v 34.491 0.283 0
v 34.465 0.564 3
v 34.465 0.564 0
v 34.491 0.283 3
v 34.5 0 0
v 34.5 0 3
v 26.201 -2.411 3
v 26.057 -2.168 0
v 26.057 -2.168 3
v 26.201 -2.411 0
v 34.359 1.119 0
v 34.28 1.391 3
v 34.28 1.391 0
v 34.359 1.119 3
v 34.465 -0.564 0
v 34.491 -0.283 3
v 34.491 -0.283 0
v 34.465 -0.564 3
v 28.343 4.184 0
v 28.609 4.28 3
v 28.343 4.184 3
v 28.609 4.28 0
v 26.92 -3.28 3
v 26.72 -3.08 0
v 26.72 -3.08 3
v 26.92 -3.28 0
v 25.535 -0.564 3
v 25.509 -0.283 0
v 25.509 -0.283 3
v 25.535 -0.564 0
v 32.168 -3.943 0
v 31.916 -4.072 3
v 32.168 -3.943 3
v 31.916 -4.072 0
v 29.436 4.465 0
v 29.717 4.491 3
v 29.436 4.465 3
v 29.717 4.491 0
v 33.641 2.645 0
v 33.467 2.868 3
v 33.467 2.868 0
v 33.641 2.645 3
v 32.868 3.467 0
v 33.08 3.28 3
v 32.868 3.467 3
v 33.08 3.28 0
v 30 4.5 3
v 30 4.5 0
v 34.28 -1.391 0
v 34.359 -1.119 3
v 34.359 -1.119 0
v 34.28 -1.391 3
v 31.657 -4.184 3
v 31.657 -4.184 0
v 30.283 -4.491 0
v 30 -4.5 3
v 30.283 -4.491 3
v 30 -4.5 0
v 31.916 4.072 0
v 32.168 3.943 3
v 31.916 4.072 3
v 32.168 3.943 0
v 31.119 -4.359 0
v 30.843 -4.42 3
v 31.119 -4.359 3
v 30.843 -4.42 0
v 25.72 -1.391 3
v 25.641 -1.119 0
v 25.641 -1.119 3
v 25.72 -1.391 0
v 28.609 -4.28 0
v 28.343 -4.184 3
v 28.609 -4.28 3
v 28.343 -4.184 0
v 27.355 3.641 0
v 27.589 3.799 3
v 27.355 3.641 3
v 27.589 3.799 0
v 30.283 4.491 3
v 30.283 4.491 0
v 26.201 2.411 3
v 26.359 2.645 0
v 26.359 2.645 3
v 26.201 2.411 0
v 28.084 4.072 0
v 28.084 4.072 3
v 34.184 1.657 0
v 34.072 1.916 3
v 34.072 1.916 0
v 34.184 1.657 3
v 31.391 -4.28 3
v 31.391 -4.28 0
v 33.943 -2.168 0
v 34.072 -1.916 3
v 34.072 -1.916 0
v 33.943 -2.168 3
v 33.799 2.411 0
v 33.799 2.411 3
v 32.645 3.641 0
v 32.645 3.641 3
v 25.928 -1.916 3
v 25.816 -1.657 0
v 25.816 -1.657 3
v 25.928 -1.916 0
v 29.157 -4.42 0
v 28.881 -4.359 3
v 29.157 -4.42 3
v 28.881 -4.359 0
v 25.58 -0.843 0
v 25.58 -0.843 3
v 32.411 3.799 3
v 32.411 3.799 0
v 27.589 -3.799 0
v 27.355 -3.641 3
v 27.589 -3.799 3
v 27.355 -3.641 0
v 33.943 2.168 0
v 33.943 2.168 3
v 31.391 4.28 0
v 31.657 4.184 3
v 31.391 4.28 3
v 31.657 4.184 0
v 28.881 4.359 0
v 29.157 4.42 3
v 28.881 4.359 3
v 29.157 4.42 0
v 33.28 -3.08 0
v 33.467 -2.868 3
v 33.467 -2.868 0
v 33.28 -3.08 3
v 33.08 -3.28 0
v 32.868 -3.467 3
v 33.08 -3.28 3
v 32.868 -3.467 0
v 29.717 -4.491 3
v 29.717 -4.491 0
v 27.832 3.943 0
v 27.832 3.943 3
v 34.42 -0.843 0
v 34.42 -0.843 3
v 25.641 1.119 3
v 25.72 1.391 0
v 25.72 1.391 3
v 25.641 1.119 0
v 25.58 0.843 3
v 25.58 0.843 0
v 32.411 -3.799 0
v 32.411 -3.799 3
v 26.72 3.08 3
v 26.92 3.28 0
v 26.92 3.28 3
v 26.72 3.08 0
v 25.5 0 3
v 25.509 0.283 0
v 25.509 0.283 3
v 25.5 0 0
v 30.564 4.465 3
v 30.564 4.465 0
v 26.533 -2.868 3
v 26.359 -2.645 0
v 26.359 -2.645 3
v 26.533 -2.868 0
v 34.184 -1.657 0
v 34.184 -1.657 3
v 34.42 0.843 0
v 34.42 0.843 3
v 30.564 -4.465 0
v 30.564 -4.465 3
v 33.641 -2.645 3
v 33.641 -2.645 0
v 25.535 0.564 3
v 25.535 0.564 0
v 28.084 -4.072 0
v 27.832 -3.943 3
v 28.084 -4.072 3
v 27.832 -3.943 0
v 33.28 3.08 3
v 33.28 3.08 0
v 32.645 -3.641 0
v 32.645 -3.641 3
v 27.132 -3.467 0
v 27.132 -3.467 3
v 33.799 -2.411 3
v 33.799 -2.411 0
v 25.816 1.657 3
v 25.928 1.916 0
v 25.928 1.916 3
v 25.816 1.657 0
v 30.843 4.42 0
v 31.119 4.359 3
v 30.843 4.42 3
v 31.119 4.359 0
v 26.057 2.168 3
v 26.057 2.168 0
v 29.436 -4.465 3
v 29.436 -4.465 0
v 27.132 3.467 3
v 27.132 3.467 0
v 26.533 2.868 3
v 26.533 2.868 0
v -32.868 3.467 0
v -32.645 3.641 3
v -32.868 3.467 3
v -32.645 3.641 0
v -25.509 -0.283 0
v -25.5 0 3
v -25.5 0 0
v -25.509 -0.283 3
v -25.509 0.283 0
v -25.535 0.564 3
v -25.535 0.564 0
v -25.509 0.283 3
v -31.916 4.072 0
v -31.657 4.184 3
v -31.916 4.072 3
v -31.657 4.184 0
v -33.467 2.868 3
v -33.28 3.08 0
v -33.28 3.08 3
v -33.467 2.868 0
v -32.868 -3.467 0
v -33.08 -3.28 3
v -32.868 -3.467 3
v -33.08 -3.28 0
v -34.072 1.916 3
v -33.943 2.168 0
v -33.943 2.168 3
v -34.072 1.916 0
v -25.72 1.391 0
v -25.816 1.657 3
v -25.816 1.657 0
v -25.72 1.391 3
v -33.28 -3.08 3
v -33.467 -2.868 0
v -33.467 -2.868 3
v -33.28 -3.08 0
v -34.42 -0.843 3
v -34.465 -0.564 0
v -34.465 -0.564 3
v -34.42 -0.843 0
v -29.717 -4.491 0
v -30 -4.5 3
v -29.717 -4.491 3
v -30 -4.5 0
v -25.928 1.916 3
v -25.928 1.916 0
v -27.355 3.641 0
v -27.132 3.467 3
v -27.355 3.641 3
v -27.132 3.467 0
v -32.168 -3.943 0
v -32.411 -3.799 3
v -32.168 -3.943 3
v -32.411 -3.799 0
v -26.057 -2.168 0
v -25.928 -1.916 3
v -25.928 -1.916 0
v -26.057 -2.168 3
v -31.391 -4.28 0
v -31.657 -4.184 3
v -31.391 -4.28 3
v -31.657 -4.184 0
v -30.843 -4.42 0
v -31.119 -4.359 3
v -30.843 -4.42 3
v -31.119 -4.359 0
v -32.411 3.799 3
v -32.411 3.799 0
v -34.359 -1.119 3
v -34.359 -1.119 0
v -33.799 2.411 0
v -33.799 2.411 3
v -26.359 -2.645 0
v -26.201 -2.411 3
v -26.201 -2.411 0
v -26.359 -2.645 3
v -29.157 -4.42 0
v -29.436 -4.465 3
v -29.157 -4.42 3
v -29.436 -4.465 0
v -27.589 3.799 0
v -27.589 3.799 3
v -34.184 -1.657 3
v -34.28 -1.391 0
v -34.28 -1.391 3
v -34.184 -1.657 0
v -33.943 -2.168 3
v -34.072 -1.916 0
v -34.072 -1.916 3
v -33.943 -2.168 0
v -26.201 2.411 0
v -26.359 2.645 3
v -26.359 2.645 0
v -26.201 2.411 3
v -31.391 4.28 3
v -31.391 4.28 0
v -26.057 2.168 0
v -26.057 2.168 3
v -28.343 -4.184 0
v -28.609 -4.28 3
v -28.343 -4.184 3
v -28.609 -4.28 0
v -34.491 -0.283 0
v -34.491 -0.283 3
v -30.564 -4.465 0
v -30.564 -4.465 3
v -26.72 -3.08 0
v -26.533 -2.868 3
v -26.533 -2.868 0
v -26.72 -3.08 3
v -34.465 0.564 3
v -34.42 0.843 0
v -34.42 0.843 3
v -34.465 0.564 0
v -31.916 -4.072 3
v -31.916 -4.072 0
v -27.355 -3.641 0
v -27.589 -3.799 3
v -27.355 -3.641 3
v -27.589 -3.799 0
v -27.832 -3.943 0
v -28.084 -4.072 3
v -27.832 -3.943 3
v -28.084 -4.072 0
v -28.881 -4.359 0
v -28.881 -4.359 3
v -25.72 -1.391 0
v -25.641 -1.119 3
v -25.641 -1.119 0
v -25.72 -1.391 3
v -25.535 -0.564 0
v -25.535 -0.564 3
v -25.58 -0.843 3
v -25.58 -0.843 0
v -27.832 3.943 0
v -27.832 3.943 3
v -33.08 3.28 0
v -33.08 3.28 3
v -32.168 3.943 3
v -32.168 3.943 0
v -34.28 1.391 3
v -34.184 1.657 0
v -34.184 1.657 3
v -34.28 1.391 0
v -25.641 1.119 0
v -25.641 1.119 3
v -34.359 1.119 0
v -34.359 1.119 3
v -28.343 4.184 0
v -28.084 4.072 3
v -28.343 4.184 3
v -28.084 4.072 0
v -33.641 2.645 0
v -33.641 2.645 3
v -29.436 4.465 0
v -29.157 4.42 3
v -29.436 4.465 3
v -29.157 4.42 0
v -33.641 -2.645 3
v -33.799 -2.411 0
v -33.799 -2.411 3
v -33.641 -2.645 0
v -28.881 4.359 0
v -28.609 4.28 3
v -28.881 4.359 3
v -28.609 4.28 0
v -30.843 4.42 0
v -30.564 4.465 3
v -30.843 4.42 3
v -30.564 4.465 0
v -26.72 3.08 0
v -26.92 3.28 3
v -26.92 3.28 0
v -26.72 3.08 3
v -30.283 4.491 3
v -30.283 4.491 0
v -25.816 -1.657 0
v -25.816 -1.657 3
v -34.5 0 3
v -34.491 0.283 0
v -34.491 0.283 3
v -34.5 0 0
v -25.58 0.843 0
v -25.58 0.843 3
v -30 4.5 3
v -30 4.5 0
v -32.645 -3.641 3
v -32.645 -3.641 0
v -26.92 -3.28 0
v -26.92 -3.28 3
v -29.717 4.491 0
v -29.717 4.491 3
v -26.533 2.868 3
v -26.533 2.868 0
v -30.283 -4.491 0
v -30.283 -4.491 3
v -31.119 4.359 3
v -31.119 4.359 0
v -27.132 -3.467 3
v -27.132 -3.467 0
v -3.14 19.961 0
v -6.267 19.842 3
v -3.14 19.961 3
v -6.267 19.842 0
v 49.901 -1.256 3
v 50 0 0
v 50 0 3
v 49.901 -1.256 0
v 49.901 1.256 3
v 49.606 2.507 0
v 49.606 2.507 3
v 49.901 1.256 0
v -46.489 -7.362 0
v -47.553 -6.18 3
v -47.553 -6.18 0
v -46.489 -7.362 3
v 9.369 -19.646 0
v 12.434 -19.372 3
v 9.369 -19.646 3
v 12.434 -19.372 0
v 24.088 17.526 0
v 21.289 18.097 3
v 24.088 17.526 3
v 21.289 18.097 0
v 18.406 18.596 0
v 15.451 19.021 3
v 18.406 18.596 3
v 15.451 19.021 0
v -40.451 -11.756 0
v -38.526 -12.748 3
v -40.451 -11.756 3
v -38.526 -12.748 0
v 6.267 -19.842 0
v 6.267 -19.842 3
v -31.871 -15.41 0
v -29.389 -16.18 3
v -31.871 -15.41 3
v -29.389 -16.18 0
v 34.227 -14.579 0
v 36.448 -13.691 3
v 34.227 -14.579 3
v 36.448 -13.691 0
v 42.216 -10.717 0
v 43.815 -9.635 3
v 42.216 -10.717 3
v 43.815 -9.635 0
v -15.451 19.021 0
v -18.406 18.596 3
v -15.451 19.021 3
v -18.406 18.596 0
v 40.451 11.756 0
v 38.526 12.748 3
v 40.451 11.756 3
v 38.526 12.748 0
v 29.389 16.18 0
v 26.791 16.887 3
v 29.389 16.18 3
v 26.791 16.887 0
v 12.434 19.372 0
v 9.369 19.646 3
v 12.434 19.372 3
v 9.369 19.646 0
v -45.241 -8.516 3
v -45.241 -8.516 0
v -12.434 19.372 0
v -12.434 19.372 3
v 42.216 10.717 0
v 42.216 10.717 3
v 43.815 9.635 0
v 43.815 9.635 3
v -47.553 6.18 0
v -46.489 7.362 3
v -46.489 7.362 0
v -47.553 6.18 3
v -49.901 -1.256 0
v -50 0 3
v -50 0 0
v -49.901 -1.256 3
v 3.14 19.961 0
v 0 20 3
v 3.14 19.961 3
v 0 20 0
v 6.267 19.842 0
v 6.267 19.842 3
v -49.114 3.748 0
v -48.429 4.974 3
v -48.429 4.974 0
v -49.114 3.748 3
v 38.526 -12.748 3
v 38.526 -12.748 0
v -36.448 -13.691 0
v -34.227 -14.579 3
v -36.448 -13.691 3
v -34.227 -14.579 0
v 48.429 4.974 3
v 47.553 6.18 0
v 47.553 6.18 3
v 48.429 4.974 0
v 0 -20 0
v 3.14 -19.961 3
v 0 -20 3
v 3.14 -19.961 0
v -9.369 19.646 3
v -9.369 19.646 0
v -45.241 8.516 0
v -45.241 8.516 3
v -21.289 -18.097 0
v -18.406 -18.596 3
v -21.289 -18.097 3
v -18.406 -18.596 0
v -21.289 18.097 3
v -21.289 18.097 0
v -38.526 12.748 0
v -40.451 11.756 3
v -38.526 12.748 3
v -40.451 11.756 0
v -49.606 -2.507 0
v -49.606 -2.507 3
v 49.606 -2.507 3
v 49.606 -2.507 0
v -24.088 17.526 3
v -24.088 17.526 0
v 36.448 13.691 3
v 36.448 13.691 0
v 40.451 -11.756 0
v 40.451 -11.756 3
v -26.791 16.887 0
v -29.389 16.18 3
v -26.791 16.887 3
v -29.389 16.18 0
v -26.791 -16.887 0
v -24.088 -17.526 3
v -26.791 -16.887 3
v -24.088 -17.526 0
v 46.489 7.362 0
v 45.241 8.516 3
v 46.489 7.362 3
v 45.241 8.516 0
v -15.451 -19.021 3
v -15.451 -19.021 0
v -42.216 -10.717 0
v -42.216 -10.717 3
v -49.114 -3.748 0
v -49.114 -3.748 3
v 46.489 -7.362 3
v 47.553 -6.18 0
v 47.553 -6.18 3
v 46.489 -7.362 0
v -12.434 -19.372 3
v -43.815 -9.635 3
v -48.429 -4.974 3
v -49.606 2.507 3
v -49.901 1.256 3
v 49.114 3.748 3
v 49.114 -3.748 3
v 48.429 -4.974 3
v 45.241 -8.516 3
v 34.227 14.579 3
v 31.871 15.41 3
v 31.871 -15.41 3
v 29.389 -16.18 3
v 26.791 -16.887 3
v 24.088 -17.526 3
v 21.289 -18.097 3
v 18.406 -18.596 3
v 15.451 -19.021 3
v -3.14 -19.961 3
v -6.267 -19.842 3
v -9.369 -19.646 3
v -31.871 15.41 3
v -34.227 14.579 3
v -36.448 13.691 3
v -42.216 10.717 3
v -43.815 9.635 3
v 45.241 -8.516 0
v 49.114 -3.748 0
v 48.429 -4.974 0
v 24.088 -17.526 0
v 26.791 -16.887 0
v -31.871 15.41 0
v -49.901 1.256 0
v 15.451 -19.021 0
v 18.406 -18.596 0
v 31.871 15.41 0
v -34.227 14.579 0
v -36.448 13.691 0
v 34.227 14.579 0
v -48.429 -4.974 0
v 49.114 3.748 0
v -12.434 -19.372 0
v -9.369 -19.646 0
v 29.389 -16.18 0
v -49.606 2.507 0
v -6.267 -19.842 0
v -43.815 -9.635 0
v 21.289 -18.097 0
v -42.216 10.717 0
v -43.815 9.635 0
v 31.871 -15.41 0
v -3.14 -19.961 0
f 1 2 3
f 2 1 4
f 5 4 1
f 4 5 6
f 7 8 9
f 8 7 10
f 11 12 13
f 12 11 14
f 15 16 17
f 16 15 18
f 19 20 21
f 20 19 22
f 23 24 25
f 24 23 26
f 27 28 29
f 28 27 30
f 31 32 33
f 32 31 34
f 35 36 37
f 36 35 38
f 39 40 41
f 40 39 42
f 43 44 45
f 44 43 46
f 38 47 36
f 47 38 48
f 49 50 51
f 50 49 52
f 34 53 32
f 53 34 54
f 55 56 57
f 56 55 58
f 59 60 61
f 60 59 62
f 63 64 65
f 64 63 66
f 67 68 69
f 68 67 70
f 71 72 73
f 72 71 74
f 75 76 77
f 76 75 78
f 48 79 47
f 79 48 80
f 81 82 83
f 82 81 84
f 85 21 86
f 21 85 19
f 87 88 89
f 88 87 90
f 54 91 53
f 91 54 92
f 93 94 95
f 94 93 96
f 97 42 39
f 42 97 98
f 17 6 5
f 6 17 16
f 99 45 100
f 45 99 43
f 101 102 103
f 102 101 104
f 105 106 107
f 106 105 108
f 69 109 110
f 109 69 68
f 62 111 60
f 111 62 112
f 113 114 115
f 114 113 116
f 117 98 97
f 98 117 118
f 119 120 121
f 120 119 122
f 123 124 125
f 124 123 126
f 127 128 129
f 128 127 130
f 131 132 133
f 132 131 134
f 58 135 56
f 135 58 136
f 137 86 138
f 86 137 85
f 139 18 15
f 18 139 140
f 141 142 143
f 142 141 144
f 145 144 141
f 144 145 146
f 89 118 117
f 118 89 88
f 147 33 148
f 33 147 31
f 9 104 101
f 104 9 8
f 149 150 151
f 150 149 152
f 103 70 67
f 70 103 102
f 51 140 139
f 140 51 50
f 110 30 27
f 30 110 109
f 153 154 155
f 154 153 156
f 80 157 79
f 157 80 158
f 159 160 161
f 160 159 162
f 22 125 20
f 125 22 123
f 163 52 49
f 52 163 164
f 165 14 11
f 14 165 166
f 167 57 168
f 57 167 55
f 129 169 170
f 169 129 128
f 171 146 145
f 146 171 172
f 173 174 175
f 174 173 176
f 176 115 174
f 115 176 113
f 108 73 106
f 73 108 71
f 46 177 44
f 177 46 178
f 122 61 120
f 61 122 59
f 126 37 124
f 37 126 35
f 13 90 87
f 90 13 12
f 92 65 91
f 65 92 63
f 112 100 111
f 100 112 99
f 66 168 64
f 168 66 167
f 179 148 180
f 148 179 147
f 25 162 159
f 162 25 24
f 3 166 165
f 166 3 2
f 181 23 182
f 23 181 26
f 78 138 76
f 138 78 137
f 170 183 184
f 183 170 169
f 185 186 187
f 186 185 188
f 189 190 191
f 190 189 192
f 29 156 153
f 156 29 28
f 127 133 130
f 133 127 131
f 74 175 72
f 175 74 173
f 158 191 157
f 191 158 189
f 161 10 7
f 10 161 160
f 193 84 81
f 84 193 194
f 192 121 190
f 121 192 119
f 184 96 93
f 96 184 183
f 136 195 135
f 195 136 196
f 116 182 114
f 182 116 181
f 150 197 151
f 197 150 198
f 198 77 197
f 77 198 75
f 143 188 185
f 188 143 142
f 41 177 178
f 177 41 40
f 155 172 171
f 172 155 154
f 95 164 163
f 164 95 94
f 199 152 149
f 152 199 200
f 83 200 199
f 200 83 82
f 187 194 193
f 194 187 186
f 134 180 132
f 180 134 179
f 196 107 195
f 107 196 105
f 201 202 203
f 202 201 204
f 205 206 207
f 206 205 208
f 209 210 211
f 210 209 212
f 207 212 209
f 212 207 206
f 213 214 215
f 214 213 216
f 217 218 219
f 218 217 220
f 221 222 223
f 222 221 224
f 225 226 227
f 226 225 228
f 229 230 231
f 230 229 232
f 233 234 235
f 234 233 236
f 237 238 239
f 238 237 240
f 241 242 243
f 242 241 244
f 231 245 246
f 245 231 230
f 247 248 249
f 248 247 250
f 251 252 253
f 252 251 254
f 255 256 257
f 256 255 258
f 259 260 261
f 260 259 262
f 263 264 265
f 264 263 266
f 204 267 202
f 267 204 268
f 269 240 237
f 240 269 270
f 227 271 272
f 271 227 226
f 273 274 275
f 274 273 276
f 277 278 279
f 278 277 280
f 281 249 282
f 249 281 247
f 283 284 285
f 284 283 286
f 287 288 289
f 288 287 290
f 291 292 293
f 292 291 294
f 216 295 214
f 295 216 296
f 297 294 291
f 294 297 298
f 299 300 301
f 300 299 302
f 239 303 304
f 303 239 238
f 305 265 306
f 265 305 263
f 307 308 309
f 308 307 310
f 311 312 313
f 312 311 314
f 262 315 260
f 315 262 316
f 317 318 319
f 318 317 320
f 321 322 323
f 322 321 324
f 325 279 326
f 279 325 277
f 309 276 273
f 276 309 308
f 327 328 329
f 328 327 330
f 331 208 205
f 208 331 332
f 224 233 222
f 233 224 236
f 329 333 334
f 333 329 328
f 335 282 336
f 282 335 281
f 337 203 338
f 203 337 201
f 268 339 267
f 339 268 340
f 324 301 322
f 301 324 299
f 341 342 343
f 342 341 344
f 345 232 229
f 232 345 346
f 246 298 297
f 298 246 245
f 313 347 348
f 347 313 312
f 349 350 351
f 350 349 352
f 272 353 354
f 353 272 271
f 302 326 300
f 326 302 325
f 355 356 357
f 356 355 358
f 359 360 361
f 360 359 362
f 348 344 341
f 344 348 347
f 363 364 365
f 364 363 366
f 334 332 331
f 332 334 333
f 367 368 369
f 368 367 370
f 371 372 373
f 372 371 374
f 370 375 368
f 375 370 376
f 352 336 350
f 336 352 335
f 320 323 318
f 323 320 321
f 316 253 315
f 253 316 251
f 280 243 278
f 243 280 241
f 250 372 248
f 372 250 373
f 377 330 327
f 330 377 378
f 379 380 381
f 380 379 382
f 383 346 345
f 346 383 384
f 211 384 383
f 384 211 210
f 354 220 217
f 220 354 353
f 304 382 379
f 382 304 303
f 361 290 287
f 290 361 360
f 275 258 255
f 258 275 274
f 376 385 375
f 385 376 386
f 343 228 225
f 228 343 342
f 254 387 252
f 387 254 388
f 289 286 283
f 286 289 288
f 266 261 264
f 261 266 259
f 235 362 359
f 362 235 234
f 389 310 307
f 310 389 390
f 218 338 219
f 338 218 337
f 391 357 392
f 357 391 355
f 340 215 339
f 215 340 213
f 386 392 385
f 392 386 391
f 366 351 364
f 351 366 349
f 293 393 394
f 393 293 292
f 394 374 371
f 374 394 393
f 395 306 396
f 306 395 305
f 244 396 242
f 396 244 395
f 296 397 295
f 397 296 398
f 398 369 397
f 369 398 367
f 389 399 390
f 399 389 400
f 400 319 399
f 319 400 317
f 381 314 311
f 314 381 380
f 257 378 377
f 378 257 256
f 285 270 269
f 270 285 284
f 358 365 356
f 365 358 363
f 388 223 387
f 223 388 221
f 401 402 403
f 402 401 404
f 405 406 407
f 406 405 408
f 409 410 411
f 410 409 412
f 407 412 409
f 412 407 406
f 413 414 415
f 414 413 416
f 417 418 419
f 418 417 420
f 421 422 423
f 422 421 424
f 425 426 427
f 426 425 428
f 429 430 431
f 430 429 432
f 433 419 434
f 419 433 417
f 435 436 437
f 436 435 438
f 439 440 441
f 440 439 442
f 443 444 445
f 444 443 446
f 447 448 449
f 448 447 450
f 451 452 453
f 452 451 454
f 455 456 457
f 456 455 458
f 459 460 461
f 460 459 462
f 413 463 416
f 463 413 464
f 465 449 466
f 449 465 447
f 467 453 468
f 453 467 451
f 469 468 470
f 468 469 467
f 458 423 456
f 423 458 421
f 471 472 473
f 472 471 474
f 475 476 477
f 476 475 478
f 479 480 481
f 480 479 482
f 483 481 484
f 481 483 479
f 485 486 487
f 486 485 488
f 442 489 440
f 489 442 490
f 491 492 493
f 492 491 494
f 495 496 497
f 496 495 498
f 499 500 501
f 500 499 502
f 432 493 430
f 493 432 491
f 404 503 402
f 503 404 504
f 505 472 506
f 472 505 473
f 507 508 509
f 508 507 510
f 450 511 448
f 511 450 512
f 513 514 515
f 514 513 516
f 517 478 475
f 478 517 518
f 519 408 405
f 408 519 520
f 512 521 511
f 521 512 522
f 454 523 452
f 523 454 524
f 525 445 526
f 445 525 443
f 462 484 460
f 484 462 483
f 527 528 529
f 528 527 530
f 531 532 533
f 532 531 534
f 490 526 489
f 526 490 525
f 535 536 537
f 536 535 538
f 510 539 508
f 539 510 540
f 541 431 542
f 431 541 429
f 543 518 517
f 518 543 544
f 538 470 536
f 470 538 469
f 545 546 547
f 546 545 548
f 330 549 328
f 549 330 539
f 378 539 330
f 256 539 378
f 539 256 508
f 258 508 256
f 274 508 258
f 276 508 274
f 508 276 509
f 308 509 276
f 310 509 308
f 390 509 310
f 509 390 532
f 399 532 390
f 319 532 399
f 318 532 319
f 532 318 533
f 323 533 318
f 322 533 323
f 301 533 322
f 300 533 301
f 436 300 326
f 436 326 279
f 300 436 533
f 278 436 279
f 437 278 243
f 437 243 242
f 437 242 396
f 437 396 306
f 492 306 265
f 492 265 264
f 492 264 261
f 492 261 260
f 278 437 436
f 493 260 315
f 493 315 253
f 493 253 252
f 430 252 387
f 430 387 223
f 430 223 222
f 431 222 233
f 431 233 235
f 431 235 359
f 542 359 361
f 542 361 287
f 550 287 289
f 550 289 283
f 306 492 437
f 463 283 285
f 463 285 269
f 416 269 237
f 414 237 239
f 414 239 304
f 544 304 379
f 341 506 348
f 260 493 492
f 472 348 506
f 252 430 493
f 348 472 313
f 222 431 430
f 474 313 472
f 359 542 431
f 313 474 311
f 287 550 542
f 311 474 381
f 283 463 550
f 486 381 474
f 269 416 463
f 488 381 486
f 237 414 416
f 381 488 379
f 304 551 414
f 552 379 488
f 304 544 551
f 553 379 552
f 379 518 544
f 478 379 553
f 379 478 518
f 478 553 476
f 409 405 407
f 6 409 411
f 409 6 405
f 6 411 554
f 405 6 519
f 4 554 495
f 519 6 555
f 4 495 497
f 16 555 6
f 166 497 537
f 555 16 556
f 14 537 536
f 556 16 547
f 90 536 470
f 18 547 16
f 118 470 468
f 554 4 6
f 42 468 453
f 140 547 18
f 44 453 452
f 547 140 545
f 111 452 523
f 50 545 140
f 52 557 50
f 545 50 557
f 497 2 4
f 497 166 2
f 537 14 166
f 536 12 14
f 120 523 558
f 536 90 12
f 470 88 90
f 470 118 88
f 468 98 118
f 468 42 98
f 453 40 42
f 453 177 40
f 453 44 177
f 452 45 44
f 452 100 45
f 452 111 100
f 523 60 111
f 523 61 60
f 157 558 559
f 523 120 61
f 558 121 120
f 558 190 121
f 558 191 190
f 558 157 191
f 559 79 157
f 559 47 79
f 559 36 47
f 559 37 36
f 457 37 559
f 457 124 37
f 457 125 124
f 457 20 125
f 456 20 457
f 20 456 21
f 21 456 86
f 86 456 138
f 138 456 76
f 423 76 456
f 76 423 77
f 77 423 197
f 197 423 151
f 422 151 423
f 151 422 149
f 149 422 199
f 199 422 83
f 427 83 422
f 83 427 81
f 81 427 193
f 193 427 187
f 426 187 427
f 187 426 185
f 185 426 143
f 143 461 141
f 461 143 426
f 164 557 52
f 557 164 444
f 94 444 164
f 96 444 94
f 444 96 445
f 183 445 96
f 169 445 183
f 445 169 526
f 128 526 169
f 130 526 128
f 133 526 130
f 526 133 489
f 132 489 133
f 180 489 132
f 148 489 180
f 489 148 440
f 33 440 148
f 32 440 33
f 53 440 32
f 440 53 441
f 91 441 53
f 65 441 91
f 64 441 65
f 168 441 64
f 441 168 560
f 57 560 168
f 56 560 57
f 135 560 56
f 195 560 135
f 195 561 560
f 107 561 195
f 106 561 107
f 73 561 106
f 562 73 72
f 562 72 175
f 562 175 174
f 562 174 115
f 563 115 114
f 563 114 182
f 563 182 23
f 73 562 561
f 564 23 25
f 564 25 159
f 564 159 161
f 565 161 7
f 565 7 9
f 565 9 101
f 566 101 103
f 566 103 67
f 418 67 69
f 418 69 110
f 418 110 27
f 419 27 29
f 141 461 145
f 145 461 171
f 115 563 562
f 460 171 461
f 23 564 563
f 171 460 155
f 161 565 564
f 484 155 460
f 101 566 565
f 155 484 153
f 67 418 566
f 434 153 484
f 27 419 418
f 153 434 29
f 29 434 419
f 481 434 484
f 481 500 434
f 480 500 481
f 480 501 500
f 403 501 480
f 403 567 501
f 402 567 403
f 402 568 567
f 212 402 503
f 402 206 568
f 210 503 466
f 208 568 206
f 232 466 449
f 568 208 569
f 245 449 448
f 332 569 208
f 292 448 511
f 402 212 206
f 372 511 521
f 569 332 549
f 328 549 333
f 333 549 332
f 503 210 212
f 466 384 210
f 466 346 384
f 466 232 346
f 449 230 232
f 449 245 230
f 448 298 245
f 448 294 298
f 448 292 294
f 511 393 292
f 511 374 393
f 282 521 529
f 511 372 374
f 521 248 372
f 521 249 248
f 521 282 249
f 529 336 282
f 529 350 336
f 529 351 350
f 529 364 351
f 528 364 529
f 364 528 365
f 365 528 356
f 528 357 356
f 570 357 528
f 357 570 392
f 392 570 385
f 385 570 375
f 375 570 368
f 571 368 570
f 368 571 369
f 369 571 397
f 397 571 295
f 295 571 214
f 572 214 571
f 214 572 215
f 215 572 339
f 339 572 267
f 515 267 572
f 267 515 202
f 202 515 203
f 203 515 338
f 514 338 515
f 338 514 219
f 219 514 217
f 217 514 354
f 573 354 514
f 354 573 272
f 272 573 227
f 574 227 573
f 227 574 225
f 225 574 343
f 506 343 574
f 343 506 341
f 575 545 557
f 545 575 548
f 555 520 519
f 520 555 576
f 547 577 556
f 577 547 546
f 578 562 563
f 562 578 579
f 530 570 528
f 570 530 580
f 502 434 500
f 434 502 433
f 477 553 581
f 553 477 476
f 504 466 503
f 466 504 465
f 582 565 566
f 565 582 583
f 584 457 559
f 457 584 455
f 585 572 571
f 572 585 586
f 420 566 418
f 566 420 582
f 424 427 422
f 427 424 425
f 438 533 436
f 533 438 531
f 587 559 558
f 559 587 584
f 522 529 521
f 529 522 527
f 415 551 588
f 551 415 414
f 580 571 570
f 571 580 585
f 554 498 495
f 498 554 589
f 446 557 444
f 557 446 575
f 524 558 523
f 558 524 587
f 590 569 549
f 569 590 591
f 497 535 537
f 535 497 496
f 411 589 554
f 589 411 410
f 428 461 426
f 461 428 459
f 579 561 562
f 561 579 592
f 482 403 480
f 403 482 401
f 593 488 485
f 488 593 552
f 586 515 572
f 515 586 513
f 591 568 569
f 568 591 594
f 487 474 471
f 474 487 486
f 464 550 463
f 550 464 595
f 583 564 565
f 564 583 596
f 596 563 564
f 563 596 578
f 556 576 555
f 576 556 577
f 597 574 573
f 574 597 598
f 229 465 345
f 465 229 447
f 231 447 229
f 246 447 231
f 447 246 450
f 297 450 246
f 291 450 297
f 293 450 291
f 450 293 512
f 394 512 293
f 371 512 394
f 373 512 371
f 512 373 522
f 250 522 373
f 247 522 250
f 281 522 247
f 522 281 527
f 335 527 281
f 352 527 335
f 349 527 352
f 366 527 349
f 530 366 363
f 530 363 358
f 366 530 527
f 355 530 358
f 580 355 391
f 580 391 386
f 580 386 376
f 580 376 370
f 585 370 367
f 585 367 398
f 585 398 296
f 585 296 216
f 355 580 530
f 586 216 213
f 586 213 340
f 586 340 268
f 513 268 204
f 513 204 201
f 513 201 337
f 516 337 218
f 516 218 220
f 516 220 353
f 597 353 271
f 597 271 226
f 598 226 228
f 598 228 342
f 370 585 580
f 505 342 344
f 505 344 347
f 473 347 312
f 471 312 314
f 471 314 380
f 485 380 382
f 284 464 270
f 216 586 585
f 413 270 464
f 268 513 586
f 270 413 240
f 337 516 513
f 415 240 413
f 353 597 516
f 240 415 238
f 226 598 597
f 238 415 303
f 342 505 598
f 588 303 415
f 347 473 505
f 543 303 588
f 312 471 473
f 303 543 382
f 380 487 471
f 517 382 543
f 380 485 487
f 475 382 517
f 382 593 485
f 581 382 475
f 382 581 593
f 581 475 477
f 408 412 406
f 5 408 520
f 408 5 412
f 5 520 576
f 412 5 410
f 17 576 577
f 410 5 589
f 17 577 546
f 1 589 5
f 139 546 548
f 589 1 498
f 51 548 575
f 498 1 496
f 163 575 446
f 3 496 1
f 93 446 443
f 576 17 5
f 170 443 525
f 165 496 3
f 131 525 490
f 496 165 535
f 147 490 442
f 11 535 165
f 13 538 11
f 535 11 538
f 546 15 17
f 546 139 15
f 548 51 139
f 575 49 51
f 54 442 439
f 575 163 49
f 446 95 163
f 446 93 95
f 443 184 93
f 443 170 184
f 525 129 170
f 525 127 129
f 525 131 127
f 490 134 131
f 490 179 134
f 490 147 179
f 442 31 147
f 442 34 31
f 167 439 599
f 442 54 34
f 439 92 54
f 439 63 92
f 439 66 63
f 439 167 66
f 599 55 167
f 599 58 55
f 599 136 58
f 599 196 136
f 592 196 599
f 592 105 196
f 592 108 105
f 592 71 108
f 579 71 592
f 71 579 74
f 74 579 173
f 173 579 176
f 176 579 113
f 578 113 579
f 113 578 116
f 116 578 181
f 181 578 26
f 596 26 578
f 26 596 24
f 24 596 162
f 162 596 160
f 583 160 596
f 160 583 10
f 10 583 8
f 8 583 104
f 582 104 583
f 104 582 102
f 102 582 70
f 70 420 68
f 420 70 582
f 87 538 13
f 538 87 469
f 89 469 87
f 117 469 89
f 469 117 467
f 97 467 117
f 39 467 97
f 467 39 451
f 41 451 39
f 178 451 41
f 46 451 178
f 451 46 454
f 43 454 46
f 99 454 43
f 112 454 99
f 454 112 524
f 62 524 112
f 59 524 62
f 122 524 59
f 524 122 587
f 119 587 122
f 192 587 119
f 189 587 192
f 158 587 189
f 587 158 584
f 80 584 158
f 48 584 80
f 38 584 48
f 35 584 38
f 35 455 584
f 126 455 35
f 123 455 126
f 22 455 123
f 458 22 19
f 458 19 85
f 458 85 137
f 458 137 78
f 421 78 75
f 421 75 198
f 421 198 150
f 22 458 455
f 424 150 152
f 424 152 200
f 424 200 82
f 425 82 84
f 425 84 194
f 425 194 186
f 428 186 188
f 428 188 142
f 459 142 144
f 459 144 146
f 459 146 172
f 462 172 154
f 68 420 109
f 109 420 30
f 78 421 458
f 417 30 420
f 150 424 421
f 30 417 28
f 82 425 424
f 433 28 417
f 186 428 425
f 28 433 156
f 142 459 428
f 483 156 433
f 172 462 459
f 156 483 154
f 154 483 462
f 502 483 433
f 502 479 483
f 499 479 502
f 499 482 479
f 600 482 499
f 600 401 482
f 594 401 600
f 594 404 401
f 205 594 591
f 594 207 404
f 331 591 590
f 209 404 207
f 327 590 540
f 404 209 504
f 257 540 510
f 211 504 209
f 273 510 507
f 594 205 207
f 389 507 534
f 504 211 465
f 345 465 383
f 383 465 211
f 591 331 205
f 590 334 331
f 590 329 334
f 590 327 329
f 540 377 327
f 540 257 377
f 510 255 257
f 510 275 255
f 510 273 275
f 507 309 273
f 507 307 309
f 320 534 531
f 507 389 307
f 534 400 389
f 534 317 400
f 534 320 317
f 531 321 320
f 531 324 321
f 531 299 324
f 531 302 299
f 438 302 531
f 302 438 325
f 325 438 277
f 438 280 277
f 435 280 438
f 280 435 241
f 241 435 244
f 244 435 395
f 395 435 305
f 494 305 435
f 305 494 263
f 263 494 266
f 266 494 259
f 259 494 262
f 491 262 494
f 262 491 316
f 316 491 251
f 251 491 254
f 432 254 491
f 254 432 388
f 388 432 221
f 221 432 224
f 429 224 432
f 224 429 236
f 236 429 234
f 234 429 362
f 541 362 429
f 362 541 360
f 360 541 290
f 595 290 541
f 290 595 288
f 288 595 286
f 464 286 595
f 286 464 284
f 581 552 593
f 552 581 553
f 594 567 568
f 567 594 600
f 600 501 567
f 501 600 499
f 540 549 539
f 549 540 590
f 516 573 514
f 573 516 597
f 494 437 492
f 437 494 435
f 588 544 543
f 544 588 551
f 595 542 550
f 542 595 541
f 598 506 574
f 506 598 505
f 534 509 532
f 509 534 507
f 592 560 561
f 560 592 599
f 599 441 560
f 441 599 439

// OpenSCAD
$fn=100;
difference(){
    scale([1,0.4,1])cylinder(3,50,50);
    union(){
        translate([30,0,0])cylinder(10,4.5,4.5,true);
        translate([-30,0,0])cylinder(10,4.5,4.5,true);
    }
}
